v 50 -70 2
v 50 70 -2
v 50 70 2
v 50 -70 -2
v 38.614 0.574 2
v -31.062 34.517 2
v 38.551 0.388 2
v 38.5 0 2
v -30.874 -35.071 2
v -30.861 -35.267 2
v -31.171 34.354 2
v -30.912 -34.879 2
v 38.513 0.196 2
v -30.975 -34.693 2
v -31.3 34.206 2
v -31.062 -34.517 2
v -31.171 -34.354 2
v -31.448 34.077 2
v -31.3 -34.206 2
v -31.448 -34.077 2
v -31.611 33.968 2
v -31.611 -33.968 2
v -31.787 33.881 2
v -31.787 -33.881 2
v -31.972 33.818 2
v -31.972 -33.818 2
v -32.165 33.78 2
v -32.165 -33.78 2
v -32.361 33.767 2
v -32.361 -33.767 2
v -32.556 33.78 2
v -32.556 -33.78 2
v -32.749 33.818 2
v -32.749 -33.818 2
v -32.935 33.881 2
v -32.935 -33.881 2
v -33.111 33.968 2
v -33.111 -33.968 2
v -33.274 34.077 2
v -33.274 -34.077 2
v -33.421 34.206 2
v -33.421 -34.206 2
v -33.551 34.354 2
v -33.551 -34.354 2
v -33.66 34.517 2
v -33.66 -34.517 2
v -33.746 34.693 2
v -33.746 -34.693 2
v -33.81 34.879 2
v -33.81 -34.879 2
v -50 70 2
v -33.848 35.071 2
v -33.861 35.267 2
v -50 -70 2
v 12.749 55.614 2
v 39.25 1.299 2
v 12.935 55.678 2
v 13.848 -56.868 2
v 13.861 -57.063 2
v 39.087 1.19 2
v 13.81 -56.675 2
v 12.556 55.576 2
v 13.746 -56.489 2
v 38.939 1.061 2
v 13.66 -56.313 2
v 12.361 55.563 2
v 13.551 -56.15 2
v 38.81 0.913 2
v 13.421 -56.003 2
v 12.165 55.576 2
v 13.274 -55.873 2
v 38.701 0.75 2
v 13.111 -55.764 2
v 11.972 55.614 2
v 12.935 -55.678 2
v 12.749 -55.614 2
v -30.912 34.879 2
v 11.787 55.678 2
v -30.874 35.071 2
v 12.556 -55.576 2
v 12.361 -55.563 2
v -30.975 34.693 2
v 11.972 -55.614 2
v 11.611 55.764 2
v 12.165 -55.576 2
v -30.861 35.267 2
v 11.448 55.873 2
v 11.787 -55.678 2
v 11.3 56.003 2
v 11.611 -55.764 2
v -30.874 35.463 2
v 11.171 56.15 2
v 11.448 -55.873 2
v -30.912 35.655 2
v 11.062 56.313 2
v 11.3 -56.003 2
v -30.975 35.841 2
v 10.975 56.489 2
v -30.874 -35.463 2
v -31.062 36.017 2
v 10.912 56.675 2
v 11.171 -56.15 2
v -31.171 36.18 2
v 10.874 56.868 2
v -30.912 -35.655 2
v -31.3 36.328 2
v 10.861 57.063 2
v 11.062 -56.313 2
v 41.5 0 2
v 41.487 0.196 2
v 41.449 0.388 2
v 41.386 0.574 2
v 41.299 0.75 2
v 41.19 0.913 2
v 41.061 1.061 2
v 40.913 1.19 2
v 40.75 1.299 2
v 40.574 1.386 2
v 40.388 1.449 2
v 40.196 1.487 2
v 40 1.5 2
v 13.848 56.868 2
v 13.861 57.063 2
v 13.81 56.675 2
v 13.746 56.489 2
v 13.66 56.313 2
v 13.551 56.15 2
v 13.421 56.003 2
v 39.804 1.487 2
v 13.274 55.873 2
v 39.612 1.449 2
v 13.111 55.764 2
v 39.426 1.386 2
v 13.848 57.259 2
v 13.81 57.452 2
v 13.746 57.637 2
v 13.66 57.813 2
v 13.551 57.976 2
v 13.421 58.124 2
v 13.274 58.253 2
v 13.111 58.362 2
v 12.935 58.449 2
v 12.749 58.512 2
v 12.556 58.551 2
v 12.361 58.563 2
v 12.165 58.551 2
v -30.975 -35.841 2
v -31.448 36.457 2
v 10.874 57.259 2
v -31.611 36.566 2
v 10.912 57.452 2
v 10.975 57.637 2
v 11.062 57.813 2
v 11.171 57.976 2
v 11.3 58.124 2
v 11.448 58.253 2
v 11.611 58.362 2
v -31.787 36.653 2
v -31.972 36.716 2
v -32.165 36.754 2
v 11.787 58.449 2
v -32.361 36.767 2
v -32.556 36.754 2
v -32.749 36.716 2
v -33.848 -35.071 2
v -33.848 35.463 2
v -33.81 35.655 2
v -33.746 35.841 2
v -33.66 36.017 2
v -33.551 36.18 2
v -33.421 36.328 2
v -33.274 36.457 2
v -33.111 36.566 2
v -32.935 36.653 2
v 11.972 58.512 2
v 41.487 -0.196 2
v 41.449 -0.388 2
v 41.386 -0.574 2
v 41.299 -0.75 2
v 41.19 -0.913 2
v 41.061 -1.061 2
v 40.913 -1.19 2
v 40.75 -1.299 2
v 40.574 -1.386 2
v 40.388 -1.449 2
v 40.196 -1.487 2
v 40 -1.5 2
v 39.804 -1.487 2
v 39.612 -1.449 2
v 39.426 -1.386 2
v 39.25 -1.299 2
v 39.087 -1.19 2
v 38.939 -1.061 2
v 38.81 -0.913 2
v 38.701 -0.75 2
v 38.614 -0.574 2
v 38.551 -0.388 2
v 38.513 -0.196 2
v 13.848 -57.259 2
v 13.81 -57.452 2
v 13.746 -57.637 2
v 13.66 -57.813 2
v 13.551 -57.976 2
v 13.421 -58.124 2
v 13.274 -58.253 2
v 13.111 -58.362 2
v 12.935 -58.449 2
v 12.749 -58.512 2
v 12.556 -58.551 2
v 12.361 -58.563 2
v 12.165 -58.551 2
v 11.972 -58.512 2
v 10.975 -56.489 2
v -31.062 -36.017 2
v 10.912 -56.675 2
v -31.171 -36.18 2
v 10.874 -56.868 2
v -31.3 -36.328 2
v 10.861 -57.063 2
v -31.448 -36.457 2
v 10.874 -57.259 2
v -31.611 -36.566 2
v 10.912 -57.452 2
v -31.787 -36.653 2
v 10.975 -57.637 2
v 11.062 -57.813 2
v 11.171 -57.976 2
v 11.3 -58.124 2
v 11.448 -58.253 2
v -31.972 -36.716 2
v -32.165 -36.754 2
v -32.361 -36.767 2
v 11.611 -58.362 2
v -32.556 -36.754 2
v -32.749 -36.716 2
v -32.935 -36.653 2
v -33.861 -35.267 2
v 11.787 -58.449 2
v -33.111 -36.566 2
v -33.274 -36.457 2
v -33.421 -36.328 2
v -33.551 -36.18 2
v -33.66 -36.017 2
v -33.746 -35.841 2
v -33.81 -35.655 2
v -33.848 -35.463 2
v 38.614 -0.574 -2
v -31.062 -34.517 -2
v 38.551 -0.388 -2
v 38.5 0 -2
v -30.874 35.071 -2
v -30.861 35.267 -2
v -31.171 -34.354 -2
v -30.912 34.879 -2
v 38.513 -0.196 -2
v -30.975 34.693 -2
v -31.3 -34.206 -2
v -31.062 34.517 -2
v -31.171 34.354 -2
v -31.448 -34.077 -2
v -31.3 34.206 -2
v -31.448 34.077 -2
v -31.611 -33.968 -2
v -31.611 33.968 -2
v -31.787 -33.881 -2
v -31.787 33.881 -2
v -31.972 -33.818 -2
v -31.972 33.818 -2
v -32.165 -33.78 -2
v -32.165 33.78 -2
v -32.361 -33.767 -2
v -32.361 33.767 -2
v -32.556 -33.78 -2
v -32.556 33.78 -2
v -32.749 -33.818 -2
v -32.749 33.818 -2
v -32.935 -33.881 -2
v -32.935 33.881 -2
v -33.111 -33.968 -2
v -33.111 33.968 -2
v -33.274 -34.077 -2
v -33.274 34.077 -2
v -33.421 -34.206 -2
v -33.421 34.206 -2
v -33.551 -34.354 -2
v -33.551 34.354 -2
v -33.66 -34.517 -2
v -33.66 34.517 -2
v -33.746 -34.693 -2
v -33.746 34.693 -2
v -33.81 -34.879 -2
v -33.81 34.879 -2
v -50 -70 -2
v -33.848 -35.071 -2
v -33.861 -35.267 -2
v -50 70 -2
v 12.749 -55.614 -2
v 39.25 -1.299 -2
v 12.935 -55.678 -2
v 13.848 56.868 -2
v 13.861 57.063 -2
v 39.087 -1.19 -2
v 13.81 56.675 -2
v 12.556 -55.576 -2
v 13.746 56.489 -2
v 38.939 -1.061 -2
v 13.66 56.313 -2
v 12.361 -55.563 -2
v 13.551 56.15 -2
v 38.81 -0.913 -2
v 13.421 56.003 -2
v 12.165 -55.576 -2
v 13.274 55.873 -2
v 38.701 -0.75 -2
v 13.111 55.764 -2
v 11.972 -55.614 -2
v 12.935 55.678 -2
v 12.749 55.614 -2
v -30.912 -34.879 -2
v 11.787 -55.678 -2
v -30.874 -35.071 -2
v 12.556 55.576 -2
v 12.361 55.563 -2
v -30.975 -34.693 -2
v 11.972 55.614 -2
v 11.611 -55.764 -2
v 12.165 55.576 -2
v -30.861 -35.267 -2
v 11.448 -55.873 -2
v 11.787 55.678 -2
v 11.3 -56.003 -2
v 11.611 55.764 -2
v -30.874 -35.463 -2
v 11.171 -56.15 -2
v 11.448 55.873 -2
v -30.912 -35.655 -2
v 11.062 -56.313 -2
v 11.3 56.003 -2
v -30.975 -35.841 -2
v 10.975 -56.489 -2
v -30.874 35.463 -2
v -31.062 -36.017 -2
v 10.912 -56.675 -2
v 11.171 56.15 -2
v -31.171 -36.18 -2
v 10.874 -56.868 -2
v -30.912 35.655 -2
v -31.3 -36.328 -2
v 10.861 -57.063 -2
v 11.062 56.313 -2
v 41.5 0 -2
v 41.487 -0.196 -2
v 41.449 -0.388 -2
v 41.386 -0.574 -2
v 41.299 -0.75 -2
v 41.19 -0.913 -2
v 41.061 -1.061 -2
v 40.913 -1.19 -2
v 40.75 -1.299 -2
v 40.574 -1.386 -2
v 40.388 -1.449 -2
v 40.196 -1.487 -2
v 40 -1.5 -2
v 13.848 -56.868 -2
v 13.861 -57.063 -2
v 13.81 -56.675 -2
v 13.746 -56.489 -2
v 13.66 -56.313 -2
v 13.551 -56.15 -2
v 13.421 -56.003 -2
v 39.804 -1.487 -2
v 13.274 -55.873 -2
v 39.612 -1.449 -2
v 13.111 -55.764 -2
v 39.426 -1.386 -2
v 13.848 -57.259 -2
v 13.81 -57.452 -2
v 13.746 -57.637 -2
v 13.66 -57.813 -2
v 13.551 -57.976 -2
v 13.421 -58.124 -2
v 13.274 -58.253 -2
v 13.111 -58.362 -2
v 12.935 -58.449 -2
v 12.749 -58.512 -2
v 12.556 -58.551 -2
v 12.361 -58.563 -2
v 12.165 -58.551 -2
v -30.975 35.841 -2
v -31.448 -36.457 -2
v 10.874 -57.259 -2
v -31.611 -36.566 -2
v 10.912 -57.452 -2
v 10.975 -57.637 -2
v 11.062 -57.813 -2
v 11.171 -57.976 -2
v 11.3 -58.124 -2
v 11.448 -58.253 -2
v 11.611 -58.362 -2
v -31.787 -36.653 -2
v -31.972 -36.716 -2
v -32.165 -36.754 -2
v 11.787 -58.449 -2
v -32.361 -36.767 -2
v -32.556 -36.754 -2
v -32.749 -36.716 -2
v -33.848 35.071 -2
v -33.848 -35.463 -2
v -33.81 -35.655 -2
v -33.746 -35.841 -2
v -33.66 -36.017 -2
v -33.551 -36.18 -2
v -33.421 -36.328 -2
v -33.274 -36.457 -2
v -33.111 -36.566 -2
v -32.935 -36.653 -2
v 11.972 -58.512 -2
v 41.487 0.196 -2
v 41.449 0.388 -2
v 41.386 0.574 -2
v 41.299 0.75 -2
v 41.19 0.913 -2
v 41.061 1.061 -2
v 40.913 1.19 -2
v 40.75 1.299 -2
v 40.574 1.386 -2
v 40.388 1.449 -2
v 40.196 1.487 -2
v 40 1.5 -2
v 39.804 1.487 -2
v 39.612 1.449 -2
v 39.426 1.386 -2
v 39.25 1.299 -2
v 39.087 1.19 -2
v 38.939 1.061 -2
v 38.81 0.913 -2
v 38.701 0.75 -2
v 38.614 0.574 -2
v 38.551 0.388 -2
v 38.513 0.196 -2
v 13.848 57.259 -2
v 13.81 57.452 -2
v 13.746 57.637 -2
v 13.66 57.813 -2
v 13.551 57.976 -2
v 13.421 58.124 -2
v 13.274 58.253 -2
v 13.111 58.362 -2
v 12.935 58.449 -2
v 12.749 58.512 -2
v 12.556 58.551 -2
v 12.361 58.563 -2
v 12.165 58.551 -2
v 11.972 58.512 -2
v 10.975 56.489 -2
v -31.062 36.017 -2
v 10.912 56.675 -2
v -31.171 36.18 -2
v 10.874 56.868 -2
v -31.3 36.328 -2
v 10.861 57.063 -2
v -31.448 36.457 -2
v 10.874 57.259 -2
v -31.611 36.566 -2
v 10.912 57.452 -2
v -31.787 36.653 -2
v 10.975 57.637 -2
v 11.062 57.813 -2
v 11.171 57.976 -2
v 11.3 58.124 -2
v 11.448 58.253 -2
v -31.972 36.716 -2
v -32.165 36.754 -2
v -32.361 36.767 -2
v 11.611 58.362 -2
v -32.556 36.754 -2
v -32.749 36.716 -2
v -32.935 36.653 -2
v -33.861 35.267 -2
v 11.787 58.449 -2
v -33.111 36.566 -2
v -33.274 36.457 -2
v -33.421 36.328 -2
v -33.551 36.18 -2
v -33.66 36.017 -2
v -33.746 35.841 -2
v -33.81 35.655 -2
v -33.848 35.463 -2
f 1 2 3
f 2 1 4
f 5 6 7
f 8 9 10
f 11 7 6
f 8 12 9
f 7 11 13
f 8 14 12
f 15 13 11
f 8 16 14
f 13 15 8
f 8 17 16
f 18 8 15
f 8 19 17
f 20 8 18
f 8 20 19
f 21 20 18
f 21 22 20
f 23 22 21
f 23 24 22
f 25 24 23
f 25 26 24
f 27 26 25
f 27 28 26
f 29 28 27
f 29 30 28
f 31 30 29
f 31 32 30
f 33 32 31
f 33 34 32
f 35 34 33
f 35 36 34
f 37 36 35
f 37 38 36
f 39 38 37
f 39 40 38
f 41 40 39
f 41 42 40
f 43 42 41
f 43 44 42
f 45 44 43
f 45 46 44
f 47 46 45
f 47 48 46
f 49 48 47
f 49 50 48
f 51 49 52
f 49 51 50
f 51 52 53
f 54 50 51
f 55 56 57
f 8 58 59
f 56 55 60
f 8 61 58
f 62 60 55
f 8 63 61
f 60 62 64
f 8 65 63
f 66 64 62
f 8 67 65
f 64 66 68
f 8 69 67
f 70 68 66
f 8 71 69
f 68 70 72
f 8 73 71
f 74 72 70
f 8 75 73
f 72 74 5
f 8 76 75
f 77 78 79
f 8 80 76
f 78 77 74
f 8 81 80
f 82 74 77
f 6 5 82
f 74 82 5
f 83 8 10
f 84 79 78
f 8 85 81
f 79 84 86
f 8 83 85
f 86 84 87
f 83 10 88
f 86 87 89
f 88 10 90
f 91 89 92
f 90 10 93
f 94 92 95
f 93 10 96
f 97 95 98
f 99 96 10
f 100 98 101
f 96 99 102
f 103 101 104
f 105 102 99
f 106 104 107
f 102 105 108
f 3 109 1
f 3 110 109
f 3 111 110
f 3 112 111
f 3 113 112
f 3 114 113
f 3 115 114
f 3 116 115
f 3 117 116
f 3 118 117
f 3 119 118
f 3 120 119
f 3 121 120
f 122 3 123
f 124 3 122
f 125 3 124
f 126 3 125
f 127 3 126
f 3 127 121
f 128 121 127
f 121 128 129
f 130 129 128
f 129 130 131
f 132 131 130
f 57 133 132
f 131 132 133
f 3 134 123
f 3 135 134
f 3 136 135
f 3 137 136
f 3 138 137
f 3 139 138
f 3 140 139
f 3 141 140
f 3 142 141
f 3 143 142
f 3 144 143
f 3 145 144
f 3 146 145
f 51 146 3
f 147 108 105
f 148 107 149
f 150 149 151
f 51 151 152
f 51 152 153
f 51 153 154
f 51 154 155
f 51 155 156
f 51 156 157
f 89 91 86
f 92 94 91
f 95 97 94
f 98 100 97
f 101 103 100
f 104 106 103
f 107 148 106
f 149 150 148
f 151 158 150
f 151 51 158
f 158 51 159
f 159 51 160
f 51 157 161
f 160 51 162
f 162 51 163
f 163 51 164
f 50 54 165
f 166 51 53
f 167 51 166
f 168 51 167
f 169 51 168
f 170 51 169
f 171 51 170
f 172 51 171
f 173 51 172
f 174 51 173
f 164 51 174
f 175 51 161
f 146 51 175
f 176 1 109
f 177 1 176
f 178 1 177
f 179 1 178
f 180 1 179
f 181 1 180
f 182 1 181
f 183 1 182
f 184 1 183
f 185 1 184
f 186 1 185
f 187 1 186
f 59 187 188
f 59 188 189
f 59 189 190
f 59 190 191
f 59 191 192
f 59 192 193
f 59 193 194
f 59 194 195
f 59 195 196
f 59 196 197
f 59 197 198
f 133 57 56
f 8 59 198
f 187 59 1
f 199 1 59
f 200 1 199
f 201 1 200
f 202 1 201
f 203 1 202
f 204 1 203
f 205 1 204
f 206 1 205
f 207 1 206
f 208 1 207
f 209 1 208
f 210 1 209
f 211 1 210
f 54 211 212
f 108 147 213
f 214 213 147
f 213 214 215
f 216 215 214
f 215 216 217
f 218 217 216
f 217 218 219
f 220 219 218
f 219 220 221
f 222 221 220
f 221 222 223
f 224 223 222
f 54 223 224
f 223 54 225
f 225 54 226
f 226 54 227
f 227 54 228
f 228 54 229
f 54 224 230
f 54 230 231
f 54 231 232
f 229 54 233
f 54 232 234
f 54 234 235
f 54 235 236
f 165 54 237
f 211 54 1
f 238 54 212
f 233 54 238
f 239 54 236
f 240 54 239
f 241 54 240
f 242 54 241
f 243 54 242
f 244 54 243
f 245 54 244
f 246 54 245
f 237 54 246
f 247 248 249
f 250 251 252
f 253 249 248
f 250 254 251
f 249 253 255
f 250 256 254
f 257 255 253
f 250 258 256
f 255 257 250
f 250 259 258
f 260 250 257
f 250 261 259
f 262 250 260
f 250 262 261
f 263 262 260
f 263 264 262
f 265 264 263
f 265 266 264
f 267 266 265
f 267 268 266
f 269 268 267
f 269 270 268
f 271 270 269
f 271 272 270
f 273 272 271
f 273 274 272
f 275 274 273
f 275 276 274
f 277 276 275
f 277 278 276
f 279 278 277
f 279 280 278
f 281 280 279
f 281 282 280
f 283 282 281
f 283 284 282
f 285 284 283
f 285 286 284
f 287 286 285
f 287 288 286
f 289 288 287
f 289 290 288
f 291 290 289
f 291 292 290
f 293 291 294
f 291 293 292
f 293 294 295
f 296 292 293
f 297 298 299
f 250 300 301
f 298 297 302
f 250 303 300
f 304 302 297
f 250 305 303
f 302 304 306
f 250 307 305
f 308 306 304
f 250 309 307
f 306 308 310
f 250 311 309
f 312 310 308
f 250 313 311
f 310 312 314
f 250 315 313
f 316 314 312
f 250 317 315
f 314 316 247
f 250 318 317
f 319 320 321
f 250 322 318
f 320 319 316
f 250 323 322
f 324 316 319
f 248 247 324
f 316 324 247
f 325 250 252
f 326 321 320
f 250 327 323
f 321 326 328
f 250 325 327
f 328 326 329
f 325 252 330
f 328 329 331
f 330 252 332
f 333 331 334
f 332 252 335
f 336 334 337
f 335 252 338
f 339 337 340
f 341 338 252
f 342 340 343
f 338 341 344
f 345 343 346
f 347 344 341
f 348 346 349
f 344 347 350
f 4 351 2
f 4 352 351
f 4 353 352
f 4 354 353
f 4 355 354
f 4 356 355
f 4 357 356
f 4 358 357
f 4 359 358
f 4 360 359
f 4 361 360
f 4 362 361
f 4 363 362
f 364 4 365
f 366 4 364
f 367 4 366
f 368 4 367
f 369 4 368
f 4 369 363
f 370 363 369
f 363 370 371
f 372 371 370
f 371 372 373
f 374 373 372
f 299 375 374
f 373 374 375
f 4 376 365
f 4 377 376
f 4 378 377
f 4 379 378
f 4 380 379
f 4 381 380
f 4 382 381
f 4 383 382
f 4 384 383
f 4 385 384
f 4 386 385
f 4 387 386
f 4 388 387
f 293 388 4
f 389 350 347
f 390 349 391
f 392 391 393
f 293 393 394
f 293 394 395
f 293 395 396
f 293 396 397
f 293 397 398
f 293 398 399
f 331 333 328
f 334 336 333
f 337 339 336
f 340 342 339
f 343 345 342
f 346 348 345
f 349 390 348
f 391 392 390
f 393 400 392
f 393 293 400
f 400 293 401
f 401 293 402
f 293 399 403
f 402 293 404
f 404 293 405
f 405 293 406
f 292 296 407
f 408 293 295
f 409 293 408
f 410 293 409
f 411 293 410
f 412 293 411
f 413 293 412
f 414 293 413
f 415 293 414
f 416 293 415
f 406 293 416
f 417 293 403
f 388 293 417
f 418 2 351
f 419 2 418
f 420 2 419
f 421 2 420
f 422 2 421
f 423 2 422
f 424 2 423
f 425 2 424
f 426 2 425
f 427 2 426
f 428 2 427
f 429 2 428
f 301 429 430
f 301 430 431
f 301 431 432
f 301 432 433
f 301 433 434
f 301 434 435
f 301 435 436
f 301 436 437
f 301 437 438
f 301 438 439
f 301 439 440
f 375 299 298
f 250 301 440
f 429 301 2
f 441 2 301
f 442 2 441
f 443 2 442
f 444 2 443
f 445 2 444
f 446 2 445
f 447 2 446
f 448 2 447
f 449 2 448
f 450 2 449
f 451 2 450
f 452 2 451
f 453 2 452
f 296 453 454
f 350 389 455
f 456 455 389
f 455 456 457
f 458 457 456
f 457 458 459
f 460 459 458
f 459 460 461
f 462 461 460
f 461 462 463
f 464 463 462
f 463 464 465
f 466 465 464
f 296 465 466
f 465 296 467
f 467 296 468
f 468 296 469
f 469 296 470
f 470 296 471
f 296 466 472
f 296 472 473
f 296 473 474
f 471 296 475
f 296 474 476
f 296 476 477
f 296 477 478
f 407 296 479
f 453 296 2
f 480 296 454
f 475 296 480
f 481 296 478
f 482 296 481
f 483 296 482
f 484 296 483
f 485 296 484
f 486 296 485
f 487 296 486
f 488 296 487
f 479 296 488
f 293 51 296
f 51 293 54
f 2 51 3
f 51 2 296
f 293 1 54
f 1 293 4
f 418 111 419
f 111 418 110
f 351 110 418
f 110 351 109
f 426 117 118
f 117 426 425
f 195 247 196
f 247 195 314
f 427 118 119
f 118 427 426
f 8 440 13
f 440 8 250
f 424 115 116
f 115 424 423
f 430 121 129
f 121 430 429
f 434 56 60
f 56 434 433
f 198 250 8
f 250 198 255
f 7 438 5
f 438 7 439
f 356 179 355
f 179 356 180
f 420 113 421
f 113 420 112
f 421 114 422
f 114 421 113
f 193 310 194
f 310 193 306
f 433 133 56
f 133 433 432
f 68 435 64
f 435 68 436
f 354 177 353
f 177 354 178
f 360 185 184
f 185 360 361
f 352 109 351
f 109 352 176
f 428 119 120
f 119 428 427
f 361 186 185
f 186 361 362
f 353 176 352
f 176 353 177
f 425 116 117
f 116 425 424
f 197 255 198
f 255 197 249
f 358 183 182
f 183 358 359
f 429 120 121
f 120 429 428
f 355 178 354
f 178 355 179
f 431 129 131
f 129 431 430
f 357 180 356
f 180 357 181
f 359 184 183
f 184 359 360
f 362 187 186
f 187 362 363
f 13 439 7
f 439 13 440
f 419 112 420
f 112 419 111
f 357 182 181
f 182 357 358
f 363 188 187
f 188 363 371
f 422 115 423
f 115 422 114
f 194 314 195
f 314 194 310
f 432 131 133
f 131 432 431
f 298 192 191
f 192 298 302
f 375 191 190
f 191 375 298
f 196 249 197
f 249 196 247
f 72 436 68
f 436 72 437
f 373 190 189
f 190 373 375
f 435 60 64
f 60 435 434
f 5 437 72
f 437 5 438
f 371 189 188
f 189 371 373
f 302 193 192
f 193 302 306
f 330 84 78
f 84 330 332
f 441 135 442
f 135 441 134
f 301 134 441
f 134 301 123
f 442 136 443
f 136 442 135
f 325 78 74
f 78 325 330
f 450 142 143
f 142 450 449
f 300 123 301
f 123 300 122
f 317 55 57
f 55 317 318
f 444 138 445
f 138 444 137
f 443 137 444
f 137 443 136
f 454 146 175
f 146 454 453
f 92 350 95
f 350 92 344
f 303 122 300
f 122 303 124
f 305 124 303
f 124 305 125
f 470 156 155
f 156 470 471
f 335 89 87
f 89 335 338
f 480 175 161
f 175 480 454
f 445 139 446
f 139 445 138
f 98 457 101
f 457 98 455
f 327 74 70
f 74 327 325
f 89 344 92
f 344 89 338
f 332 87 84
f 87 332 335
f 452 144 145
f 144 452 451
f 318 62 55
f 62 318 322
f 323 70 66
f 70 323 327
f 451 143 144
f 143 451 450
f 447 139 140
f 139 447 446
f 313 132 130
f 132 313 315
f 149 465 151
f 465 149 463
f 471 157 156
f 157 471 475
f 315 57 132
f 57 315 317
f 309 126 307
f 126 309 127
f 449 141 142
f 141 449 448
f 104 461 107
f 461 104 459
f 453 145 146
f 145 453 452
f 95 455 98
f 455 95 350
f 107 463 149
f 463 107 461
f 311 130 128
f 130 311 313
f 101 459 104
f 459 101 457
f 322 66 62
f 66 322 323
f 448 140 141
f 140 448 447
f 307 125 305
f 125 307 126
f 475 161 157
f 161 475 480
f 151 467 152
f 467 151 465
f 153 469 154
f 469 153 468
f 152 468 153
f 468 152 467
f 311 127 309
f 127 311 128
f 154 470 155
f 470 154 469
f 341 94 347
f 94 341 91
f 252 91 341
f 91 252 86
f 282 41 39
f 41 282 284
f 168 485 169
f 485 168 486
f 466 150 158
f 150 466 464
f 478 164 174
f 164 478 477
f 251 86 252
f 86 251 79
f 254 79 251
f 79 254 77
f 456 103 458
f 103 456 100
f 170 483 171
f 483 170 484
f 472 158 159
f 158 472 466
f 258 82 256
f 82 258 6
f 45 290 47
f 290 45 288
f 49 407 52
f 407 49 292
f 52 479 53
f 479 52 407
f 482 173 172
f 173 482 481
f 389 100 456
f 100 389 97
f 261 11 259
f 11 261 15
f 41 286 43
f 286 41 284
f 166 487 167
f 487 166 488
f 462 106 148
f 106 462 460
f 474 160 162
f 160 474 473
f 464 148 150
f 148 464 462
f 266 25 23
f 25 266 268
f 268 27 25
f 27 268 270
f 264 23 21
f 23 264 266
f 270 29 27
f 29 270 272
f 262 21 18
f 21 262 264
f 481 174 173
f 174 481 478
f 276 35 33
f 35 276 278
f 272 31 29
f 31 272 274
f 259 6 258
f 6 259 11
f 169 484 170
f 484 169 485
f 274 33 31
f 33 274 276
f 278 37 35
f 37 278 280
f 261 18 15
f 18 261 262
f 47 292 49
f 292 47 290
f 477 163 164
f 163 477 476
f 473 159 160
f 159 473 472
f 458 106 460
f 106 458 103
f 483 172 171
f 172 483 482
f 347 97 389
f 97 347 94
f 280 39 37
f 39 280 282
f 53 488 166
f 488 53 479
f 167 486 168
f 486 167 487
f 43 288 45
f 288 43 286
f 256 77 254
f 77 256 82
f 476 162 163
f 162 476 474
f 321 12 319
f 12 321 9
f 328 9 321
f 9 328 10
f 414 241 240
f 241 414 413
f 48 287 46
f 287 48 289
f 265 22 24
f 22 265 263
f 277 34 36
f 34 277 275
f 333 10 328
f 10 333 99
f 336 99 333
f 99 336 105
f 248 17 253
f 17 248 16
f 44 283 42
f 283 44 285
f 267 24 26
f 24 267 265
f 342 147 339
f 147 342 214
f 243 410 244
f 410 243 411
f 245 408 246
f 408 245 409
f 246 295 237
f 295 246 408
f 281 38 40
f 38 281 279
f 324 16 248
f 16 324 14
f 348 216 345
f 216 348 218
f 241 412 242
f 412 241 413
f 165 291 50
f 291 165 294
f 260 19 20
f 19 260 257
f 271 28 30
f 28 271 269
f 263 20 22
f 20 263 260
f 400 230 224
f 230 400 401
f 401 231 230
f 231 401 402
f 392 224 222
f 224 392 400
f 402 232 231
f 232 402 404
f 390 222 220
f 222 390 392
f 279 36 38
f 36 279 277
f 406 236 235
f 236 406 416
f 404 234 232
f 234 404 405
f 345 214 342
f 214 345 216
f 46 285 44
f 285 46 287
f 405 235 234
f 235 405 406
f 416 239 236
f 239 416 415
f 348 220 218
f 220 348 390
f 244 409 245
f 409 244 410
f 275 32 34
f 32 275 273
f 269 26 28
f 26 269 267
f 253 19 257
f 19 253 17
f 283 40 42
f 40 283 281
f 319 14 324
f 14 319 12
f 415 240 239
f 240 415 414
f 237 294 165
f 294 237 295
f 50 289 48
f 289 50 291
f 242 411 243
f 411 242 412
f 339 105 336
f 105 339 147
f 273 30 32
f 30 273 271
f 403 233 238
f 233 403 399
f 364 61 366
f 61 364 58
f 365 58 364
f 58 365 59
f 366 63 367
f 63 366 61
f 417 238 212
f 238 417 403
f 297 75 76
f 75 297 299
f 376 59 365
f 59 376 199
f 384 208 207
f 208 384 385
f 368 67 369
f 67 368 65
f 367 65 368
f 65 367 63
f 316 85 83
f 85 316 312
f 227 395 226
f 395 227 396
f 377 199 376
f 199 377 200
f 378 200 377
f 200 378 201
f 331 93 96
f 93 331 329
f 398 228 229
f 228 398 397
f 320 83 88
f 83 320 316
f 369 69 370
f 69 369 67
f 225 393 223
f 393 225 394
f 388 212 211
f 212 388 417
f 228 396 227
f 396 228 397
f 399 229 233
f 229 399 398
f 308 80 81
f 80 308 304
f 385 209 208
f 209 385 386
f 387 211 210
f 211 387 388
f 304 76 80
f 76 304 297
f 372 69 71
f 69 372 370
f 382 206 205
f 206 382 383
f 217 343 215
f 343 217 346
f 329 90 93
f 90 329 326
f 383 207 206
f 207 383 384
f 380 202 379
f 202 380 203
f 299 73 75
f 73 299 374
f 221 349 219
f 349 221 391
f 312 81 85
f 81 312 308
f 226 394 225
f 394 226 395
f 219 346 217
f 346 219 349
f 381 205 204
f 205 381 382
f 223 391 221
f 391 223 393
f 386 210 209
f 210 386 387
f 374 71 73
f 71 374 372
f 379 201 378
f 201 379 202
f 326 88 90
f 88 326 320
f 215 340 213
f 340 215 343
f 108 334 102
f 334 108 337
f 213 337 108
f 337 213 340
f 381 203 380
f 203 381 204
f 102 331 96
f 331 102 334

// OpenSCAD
// ========================================
// a 100 x 140 x 4 mm plate with five 3 mm holes
// NeuroCAD canonical IR; dimensions are millimetres
// ========================================
$fn = 48;

difference() {
  cube(size=[100, 140, 4], center=true);
  translate([40, 0, 0]) {
    cylinder(r=1.5, h=6, center=true);
  }
  translate([12.3606797749979, 57.0633909777092, 0]) {
    cylinder(r=1.5, h=6, center=true);
  }
  translate([-32.3606797749979, 35.2671151375484, 0]) {
    cylinder(r=1.5, h=6, center=true);
  }
  translate([-32.3606797749979, -35.2671151375484, 0]) {
    cylinder(r=1.5, h=6, center=true);
  }
  translate([12.3606797749979, -57.0633909777092, 0]) {
    cylinder(r=1.5, h=6, center=true);
  }
}
